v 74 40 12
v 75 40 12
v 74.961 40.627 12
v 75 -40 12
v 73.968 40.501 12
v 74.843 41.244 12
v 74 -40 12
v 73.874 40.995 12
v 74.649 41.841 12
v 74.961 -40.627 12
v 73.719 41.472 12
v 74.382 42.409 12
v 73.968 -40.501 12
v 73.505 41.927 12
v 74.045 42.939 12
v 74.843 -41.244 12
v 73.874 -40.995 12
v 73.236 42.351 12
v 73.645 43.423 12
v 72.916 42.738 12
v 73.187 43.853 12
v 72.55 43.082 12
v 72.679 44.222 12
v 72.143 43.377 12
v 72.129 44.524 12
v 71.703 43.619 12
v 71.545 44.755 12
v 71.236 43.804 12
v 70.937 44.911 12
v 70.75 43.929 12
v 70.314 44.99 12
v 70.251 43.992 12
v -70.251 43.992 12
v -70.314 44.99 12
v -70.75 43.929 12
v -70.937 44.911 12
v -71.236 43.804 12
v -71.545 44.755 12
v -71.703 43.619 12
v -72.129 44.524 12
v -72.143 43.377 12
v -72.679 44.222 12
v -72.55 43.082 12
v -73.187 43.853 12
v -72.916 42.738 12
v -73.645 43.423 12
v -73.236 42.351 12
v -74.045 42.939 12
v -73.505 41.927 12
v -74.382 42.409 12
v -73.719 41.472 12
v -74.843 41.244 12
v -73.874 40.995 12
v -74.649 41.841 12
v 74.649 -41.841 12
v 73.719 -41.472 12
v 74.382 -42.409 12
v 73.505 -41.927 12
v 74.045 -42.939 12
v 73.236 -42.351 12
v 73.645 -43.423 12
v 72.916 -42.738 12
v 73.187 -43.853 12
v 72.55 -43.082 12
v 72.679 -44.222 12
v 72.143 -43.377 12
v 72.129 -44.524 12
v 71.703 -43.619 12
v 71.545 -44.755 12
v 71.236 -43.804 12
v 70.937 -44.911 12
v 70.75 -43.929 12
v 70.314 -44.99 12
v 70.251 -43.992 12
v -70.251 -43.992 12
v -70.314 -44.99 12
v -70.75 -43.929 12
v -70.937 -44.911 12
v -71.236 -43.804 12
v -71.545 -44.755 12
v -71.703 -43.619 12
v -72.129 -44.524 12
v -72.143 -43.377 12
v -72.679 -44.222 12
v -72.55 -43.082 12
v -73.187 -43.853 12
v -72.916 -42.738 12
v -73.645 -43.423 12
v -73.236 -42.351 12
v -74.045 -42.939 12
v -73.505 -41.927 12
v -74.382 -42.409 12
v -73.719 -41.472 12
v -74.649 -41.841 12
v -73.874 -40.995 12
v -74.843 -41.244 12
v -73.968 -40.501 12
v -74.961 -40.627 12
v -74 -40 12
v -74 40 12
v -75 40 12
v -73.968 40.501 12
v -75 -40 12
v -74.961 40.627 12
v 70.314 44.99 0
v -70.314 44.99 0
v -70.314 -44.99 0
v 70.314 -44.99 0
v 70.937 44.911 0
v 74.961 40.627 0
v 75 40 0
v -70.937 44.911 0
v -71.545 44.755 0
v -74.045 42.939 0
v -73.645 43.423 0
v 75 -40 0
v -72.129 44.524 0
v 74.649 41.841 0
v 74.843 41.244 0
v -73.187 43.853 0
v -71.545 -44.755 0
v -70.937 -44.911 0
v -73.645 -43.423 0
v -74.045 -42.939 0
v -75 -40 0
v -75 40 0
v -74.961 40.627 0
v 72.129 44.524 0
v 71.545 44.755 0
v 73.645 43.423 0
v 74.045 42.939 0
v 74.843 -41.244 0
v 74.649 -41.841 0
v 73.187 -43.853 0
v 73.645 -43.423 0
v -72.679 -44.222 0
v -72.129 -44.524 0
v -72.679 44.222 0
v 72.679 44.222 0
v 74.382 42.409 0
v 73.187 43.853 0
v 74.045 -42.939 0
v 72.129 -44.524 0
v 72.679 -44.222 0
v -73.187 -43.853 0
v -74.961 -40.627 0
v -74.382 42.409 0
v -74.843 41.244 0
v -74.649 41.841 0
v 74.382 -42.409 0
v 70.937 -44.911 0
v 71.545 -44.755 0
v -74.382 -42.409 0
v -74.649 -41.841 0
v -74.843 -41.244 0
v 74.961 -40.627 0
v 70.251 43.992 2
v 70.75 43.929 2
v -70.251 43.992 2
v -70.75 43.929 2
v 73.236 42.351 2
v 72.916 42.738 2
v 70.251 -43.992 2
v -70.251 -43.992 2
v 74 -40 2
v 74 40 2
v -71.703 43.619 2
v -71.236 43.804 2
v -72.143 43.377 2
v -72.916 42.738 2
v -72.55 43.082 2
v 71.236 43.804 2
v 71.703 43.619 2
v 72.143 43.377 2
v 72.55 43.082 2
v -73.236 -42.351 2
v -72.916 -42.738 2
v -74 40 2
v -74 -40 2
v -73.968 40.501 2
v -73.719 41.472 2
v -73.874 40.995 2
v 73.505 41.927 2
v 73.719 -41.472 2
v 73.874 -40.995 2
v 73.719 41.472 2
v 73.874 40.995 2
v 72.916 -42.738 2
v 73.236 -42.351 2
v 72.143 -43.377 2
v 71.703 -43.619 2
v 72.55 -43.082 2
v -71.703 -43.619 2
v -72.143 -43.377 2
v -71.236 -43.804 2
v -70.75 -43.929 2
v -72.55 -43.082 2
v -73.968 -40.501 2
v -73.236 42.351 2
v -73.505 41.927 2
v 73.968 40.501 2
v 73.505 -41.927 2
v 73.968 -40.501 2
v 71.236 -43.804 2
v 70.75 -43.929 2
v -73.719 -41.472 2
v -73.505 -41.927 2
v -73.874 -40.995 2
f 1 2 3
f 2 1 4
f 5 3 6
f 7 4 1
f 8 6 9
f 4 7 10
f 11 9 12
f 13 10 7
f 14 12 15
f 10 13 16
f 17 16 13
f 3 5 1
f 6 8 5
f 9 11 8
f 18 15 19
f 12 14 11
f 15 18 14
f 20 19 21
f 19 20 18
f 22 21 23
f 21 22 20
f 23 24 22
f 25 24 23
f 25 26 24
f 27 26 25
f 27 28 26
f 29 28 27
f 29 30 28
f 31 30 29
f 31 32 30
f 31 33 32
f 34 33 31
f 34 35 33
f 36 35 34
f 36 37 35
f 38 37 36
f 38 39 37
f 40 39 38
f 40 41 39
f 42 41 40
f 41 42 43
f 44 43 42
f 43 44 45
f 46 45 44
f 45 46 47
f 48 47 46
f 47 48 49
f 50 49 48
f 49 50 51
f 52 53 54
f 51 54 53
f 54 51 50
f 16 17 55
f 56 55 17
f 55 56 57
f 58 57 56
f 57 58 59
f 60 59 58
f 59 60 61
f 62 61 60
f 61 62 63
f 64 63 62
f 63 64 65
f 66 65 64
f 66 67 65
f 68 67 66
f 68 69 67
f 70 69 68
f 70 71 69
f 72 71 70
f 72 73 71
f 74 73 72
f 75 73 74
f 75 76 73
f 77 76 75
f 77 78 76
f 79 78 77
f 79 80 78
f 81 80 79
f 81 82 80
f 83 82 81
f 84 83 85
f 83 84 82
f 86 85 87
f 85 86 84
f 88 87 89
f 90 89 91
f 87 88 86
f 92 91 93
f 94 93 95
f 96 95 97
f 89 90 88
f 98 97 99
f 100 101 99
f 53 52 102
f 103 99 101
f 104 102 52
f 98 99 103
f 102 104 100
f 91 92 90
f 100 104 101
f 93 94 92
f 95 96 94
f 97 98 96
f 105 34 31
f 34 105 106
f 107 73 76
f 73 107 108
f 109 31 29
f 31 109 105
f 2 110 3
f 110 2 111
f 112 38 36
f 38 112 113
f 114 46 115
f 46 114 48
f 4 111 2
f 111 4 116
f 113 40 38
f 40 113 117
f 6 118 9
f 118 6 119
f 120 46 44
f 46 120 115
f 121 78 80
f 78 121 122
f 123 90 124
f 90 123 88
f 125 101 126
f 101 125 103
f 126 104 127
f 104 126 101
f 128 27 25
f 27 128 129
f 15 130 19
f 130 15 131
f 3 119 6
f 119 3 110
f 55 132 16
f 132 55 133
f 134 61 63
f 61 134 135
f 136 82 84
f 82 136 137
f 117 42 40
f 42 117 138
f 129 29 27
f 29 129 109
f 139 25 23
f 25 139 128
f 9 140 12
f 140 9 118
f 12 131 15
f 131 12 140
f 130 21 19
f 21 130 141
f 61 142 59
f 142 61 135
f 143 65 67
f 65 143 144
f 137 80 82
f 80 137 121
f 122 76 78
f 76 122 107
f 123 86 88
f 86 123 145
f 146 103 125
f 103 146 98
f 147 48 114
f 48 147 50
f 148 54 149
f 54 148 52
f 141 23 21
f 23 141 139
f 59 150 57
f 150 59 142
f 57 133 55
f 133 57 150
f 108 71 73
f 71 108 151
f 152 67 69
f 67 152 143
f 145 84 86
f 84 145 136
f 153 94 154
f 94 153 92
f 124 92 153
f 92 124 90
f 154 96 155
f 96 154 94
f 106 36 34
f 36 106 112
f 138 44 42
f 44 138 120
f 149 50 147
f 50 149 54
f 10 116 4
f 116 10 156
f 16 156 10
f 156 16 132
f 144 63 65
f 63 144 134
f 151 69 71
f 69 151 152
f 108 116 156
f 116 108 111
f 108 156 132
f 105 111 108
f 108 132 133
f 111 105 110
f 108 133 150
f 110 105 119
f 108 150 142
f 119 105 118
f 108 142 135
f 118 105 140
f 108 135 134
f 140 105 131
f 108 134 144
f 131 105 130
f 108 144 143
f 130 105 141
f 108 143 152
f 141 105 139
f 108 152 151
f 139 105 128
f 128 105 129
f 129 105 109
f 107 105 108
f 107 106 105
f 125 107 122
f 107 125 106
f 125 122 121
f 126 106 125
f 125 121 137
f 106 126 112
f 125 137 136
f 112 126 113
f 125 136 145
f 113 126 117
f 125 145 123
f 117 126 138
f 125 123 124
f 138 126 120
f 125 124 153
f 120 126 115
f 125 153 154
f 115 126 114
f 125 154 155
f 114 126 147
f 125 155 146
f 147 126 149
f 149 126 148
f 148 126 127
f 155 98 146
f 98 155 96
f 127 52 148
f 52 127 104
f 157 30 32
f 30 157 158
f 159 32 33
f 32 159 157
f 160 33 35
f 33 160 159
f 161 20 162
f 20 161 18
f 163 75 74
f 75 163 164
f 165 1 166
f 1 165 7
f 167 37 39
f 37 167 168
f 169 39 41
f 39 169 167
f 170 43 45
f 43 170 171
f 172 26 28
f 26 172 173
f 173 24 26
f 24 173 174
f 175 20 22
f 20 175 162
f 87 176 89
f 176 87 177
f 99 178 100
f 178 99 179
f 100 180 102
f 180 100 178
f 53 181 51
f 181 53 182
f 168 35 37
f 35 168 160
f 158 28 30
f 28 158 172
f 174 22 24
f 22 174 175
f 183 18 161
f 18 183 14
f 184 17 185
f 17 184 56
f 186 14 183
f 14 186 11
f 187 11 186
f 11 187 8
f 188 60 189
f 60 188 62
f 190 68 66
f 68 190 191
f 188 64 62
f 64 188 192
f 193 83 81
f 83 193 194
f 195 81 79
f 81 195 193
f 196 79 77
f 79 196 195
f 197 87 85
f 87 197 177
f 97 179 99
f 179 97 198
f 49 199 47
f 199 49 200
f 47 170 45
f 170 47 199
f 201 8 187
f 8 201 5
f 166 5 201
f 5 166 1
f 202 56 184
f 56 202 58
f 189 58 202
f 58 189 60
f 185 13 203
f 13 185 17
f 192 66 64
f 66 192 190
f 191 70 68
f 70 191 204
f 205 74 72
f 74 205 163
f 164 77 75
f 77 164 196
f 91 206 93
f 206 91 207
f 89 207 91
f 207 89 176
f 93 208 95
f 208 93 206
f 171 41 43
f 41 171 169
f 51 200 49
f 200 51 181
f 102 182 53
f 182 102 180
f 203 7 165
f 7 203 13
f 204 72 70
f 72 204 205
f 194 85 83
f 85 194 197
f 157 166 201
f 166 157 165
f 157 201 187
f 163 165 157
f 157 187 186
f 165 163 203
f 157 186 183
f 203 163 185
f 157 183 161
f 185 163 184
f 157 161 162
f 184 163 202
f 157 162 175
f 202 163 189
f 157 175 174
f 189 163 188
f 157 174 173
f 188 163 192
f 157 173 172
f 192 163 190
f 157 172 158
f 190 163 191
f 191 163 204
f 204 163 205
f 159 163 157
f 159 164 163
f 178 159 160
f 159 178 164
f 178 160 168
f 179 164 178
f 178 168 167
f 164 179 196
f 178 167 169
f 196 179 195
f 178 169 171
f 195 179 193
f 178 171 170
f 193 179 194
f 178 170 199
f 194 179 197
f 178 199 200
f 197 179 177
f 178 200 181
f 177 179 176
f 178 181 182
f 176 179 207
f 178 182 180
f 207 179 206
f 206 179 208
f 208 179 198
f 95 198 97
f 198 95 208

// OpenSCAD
$fn = 50;


difference() {
	union() {
		hull() {
			translate(v = [-70.0000000000, 40.0000000000, 0]) {
				cylinder(h = 12, r = 5);
			}
			translate(v = [70.0000000000, 40.0000000000, 0]) {
				cylinder(h = 12, r = 5);
			}
			translate(v = [-70.0000000000, -40.0000000000, 0]) {
				cylinder(h = 12, r = 5);
			}
			translate(v = [70.0000000000, -40.0000000000, 0]) {
				cylinder(h = 12, r = 5);
			}
		}
	}
	union() {
		translate(v = [0, 0, 2]) {
			hull() {
				translate(v = [-70.0000000000, 40.0000000000, 0]) {
					cylinder(h = 10, r = 4);
				}
				translate(v = [70.0000000000, 40.0000000000, 0]) {
					cylinder(h = 10, r = 4);
				}
				translate(v = [-70.0000000000, -40.0000000000, 0]) {
					cylinder(h = 10, r = 4);
				}
				translate(v = [70.0000000000, -40.0000000000, 0]) {
					cylinder(h = 10, r = 4);
				}
			}
		}
	}
}
